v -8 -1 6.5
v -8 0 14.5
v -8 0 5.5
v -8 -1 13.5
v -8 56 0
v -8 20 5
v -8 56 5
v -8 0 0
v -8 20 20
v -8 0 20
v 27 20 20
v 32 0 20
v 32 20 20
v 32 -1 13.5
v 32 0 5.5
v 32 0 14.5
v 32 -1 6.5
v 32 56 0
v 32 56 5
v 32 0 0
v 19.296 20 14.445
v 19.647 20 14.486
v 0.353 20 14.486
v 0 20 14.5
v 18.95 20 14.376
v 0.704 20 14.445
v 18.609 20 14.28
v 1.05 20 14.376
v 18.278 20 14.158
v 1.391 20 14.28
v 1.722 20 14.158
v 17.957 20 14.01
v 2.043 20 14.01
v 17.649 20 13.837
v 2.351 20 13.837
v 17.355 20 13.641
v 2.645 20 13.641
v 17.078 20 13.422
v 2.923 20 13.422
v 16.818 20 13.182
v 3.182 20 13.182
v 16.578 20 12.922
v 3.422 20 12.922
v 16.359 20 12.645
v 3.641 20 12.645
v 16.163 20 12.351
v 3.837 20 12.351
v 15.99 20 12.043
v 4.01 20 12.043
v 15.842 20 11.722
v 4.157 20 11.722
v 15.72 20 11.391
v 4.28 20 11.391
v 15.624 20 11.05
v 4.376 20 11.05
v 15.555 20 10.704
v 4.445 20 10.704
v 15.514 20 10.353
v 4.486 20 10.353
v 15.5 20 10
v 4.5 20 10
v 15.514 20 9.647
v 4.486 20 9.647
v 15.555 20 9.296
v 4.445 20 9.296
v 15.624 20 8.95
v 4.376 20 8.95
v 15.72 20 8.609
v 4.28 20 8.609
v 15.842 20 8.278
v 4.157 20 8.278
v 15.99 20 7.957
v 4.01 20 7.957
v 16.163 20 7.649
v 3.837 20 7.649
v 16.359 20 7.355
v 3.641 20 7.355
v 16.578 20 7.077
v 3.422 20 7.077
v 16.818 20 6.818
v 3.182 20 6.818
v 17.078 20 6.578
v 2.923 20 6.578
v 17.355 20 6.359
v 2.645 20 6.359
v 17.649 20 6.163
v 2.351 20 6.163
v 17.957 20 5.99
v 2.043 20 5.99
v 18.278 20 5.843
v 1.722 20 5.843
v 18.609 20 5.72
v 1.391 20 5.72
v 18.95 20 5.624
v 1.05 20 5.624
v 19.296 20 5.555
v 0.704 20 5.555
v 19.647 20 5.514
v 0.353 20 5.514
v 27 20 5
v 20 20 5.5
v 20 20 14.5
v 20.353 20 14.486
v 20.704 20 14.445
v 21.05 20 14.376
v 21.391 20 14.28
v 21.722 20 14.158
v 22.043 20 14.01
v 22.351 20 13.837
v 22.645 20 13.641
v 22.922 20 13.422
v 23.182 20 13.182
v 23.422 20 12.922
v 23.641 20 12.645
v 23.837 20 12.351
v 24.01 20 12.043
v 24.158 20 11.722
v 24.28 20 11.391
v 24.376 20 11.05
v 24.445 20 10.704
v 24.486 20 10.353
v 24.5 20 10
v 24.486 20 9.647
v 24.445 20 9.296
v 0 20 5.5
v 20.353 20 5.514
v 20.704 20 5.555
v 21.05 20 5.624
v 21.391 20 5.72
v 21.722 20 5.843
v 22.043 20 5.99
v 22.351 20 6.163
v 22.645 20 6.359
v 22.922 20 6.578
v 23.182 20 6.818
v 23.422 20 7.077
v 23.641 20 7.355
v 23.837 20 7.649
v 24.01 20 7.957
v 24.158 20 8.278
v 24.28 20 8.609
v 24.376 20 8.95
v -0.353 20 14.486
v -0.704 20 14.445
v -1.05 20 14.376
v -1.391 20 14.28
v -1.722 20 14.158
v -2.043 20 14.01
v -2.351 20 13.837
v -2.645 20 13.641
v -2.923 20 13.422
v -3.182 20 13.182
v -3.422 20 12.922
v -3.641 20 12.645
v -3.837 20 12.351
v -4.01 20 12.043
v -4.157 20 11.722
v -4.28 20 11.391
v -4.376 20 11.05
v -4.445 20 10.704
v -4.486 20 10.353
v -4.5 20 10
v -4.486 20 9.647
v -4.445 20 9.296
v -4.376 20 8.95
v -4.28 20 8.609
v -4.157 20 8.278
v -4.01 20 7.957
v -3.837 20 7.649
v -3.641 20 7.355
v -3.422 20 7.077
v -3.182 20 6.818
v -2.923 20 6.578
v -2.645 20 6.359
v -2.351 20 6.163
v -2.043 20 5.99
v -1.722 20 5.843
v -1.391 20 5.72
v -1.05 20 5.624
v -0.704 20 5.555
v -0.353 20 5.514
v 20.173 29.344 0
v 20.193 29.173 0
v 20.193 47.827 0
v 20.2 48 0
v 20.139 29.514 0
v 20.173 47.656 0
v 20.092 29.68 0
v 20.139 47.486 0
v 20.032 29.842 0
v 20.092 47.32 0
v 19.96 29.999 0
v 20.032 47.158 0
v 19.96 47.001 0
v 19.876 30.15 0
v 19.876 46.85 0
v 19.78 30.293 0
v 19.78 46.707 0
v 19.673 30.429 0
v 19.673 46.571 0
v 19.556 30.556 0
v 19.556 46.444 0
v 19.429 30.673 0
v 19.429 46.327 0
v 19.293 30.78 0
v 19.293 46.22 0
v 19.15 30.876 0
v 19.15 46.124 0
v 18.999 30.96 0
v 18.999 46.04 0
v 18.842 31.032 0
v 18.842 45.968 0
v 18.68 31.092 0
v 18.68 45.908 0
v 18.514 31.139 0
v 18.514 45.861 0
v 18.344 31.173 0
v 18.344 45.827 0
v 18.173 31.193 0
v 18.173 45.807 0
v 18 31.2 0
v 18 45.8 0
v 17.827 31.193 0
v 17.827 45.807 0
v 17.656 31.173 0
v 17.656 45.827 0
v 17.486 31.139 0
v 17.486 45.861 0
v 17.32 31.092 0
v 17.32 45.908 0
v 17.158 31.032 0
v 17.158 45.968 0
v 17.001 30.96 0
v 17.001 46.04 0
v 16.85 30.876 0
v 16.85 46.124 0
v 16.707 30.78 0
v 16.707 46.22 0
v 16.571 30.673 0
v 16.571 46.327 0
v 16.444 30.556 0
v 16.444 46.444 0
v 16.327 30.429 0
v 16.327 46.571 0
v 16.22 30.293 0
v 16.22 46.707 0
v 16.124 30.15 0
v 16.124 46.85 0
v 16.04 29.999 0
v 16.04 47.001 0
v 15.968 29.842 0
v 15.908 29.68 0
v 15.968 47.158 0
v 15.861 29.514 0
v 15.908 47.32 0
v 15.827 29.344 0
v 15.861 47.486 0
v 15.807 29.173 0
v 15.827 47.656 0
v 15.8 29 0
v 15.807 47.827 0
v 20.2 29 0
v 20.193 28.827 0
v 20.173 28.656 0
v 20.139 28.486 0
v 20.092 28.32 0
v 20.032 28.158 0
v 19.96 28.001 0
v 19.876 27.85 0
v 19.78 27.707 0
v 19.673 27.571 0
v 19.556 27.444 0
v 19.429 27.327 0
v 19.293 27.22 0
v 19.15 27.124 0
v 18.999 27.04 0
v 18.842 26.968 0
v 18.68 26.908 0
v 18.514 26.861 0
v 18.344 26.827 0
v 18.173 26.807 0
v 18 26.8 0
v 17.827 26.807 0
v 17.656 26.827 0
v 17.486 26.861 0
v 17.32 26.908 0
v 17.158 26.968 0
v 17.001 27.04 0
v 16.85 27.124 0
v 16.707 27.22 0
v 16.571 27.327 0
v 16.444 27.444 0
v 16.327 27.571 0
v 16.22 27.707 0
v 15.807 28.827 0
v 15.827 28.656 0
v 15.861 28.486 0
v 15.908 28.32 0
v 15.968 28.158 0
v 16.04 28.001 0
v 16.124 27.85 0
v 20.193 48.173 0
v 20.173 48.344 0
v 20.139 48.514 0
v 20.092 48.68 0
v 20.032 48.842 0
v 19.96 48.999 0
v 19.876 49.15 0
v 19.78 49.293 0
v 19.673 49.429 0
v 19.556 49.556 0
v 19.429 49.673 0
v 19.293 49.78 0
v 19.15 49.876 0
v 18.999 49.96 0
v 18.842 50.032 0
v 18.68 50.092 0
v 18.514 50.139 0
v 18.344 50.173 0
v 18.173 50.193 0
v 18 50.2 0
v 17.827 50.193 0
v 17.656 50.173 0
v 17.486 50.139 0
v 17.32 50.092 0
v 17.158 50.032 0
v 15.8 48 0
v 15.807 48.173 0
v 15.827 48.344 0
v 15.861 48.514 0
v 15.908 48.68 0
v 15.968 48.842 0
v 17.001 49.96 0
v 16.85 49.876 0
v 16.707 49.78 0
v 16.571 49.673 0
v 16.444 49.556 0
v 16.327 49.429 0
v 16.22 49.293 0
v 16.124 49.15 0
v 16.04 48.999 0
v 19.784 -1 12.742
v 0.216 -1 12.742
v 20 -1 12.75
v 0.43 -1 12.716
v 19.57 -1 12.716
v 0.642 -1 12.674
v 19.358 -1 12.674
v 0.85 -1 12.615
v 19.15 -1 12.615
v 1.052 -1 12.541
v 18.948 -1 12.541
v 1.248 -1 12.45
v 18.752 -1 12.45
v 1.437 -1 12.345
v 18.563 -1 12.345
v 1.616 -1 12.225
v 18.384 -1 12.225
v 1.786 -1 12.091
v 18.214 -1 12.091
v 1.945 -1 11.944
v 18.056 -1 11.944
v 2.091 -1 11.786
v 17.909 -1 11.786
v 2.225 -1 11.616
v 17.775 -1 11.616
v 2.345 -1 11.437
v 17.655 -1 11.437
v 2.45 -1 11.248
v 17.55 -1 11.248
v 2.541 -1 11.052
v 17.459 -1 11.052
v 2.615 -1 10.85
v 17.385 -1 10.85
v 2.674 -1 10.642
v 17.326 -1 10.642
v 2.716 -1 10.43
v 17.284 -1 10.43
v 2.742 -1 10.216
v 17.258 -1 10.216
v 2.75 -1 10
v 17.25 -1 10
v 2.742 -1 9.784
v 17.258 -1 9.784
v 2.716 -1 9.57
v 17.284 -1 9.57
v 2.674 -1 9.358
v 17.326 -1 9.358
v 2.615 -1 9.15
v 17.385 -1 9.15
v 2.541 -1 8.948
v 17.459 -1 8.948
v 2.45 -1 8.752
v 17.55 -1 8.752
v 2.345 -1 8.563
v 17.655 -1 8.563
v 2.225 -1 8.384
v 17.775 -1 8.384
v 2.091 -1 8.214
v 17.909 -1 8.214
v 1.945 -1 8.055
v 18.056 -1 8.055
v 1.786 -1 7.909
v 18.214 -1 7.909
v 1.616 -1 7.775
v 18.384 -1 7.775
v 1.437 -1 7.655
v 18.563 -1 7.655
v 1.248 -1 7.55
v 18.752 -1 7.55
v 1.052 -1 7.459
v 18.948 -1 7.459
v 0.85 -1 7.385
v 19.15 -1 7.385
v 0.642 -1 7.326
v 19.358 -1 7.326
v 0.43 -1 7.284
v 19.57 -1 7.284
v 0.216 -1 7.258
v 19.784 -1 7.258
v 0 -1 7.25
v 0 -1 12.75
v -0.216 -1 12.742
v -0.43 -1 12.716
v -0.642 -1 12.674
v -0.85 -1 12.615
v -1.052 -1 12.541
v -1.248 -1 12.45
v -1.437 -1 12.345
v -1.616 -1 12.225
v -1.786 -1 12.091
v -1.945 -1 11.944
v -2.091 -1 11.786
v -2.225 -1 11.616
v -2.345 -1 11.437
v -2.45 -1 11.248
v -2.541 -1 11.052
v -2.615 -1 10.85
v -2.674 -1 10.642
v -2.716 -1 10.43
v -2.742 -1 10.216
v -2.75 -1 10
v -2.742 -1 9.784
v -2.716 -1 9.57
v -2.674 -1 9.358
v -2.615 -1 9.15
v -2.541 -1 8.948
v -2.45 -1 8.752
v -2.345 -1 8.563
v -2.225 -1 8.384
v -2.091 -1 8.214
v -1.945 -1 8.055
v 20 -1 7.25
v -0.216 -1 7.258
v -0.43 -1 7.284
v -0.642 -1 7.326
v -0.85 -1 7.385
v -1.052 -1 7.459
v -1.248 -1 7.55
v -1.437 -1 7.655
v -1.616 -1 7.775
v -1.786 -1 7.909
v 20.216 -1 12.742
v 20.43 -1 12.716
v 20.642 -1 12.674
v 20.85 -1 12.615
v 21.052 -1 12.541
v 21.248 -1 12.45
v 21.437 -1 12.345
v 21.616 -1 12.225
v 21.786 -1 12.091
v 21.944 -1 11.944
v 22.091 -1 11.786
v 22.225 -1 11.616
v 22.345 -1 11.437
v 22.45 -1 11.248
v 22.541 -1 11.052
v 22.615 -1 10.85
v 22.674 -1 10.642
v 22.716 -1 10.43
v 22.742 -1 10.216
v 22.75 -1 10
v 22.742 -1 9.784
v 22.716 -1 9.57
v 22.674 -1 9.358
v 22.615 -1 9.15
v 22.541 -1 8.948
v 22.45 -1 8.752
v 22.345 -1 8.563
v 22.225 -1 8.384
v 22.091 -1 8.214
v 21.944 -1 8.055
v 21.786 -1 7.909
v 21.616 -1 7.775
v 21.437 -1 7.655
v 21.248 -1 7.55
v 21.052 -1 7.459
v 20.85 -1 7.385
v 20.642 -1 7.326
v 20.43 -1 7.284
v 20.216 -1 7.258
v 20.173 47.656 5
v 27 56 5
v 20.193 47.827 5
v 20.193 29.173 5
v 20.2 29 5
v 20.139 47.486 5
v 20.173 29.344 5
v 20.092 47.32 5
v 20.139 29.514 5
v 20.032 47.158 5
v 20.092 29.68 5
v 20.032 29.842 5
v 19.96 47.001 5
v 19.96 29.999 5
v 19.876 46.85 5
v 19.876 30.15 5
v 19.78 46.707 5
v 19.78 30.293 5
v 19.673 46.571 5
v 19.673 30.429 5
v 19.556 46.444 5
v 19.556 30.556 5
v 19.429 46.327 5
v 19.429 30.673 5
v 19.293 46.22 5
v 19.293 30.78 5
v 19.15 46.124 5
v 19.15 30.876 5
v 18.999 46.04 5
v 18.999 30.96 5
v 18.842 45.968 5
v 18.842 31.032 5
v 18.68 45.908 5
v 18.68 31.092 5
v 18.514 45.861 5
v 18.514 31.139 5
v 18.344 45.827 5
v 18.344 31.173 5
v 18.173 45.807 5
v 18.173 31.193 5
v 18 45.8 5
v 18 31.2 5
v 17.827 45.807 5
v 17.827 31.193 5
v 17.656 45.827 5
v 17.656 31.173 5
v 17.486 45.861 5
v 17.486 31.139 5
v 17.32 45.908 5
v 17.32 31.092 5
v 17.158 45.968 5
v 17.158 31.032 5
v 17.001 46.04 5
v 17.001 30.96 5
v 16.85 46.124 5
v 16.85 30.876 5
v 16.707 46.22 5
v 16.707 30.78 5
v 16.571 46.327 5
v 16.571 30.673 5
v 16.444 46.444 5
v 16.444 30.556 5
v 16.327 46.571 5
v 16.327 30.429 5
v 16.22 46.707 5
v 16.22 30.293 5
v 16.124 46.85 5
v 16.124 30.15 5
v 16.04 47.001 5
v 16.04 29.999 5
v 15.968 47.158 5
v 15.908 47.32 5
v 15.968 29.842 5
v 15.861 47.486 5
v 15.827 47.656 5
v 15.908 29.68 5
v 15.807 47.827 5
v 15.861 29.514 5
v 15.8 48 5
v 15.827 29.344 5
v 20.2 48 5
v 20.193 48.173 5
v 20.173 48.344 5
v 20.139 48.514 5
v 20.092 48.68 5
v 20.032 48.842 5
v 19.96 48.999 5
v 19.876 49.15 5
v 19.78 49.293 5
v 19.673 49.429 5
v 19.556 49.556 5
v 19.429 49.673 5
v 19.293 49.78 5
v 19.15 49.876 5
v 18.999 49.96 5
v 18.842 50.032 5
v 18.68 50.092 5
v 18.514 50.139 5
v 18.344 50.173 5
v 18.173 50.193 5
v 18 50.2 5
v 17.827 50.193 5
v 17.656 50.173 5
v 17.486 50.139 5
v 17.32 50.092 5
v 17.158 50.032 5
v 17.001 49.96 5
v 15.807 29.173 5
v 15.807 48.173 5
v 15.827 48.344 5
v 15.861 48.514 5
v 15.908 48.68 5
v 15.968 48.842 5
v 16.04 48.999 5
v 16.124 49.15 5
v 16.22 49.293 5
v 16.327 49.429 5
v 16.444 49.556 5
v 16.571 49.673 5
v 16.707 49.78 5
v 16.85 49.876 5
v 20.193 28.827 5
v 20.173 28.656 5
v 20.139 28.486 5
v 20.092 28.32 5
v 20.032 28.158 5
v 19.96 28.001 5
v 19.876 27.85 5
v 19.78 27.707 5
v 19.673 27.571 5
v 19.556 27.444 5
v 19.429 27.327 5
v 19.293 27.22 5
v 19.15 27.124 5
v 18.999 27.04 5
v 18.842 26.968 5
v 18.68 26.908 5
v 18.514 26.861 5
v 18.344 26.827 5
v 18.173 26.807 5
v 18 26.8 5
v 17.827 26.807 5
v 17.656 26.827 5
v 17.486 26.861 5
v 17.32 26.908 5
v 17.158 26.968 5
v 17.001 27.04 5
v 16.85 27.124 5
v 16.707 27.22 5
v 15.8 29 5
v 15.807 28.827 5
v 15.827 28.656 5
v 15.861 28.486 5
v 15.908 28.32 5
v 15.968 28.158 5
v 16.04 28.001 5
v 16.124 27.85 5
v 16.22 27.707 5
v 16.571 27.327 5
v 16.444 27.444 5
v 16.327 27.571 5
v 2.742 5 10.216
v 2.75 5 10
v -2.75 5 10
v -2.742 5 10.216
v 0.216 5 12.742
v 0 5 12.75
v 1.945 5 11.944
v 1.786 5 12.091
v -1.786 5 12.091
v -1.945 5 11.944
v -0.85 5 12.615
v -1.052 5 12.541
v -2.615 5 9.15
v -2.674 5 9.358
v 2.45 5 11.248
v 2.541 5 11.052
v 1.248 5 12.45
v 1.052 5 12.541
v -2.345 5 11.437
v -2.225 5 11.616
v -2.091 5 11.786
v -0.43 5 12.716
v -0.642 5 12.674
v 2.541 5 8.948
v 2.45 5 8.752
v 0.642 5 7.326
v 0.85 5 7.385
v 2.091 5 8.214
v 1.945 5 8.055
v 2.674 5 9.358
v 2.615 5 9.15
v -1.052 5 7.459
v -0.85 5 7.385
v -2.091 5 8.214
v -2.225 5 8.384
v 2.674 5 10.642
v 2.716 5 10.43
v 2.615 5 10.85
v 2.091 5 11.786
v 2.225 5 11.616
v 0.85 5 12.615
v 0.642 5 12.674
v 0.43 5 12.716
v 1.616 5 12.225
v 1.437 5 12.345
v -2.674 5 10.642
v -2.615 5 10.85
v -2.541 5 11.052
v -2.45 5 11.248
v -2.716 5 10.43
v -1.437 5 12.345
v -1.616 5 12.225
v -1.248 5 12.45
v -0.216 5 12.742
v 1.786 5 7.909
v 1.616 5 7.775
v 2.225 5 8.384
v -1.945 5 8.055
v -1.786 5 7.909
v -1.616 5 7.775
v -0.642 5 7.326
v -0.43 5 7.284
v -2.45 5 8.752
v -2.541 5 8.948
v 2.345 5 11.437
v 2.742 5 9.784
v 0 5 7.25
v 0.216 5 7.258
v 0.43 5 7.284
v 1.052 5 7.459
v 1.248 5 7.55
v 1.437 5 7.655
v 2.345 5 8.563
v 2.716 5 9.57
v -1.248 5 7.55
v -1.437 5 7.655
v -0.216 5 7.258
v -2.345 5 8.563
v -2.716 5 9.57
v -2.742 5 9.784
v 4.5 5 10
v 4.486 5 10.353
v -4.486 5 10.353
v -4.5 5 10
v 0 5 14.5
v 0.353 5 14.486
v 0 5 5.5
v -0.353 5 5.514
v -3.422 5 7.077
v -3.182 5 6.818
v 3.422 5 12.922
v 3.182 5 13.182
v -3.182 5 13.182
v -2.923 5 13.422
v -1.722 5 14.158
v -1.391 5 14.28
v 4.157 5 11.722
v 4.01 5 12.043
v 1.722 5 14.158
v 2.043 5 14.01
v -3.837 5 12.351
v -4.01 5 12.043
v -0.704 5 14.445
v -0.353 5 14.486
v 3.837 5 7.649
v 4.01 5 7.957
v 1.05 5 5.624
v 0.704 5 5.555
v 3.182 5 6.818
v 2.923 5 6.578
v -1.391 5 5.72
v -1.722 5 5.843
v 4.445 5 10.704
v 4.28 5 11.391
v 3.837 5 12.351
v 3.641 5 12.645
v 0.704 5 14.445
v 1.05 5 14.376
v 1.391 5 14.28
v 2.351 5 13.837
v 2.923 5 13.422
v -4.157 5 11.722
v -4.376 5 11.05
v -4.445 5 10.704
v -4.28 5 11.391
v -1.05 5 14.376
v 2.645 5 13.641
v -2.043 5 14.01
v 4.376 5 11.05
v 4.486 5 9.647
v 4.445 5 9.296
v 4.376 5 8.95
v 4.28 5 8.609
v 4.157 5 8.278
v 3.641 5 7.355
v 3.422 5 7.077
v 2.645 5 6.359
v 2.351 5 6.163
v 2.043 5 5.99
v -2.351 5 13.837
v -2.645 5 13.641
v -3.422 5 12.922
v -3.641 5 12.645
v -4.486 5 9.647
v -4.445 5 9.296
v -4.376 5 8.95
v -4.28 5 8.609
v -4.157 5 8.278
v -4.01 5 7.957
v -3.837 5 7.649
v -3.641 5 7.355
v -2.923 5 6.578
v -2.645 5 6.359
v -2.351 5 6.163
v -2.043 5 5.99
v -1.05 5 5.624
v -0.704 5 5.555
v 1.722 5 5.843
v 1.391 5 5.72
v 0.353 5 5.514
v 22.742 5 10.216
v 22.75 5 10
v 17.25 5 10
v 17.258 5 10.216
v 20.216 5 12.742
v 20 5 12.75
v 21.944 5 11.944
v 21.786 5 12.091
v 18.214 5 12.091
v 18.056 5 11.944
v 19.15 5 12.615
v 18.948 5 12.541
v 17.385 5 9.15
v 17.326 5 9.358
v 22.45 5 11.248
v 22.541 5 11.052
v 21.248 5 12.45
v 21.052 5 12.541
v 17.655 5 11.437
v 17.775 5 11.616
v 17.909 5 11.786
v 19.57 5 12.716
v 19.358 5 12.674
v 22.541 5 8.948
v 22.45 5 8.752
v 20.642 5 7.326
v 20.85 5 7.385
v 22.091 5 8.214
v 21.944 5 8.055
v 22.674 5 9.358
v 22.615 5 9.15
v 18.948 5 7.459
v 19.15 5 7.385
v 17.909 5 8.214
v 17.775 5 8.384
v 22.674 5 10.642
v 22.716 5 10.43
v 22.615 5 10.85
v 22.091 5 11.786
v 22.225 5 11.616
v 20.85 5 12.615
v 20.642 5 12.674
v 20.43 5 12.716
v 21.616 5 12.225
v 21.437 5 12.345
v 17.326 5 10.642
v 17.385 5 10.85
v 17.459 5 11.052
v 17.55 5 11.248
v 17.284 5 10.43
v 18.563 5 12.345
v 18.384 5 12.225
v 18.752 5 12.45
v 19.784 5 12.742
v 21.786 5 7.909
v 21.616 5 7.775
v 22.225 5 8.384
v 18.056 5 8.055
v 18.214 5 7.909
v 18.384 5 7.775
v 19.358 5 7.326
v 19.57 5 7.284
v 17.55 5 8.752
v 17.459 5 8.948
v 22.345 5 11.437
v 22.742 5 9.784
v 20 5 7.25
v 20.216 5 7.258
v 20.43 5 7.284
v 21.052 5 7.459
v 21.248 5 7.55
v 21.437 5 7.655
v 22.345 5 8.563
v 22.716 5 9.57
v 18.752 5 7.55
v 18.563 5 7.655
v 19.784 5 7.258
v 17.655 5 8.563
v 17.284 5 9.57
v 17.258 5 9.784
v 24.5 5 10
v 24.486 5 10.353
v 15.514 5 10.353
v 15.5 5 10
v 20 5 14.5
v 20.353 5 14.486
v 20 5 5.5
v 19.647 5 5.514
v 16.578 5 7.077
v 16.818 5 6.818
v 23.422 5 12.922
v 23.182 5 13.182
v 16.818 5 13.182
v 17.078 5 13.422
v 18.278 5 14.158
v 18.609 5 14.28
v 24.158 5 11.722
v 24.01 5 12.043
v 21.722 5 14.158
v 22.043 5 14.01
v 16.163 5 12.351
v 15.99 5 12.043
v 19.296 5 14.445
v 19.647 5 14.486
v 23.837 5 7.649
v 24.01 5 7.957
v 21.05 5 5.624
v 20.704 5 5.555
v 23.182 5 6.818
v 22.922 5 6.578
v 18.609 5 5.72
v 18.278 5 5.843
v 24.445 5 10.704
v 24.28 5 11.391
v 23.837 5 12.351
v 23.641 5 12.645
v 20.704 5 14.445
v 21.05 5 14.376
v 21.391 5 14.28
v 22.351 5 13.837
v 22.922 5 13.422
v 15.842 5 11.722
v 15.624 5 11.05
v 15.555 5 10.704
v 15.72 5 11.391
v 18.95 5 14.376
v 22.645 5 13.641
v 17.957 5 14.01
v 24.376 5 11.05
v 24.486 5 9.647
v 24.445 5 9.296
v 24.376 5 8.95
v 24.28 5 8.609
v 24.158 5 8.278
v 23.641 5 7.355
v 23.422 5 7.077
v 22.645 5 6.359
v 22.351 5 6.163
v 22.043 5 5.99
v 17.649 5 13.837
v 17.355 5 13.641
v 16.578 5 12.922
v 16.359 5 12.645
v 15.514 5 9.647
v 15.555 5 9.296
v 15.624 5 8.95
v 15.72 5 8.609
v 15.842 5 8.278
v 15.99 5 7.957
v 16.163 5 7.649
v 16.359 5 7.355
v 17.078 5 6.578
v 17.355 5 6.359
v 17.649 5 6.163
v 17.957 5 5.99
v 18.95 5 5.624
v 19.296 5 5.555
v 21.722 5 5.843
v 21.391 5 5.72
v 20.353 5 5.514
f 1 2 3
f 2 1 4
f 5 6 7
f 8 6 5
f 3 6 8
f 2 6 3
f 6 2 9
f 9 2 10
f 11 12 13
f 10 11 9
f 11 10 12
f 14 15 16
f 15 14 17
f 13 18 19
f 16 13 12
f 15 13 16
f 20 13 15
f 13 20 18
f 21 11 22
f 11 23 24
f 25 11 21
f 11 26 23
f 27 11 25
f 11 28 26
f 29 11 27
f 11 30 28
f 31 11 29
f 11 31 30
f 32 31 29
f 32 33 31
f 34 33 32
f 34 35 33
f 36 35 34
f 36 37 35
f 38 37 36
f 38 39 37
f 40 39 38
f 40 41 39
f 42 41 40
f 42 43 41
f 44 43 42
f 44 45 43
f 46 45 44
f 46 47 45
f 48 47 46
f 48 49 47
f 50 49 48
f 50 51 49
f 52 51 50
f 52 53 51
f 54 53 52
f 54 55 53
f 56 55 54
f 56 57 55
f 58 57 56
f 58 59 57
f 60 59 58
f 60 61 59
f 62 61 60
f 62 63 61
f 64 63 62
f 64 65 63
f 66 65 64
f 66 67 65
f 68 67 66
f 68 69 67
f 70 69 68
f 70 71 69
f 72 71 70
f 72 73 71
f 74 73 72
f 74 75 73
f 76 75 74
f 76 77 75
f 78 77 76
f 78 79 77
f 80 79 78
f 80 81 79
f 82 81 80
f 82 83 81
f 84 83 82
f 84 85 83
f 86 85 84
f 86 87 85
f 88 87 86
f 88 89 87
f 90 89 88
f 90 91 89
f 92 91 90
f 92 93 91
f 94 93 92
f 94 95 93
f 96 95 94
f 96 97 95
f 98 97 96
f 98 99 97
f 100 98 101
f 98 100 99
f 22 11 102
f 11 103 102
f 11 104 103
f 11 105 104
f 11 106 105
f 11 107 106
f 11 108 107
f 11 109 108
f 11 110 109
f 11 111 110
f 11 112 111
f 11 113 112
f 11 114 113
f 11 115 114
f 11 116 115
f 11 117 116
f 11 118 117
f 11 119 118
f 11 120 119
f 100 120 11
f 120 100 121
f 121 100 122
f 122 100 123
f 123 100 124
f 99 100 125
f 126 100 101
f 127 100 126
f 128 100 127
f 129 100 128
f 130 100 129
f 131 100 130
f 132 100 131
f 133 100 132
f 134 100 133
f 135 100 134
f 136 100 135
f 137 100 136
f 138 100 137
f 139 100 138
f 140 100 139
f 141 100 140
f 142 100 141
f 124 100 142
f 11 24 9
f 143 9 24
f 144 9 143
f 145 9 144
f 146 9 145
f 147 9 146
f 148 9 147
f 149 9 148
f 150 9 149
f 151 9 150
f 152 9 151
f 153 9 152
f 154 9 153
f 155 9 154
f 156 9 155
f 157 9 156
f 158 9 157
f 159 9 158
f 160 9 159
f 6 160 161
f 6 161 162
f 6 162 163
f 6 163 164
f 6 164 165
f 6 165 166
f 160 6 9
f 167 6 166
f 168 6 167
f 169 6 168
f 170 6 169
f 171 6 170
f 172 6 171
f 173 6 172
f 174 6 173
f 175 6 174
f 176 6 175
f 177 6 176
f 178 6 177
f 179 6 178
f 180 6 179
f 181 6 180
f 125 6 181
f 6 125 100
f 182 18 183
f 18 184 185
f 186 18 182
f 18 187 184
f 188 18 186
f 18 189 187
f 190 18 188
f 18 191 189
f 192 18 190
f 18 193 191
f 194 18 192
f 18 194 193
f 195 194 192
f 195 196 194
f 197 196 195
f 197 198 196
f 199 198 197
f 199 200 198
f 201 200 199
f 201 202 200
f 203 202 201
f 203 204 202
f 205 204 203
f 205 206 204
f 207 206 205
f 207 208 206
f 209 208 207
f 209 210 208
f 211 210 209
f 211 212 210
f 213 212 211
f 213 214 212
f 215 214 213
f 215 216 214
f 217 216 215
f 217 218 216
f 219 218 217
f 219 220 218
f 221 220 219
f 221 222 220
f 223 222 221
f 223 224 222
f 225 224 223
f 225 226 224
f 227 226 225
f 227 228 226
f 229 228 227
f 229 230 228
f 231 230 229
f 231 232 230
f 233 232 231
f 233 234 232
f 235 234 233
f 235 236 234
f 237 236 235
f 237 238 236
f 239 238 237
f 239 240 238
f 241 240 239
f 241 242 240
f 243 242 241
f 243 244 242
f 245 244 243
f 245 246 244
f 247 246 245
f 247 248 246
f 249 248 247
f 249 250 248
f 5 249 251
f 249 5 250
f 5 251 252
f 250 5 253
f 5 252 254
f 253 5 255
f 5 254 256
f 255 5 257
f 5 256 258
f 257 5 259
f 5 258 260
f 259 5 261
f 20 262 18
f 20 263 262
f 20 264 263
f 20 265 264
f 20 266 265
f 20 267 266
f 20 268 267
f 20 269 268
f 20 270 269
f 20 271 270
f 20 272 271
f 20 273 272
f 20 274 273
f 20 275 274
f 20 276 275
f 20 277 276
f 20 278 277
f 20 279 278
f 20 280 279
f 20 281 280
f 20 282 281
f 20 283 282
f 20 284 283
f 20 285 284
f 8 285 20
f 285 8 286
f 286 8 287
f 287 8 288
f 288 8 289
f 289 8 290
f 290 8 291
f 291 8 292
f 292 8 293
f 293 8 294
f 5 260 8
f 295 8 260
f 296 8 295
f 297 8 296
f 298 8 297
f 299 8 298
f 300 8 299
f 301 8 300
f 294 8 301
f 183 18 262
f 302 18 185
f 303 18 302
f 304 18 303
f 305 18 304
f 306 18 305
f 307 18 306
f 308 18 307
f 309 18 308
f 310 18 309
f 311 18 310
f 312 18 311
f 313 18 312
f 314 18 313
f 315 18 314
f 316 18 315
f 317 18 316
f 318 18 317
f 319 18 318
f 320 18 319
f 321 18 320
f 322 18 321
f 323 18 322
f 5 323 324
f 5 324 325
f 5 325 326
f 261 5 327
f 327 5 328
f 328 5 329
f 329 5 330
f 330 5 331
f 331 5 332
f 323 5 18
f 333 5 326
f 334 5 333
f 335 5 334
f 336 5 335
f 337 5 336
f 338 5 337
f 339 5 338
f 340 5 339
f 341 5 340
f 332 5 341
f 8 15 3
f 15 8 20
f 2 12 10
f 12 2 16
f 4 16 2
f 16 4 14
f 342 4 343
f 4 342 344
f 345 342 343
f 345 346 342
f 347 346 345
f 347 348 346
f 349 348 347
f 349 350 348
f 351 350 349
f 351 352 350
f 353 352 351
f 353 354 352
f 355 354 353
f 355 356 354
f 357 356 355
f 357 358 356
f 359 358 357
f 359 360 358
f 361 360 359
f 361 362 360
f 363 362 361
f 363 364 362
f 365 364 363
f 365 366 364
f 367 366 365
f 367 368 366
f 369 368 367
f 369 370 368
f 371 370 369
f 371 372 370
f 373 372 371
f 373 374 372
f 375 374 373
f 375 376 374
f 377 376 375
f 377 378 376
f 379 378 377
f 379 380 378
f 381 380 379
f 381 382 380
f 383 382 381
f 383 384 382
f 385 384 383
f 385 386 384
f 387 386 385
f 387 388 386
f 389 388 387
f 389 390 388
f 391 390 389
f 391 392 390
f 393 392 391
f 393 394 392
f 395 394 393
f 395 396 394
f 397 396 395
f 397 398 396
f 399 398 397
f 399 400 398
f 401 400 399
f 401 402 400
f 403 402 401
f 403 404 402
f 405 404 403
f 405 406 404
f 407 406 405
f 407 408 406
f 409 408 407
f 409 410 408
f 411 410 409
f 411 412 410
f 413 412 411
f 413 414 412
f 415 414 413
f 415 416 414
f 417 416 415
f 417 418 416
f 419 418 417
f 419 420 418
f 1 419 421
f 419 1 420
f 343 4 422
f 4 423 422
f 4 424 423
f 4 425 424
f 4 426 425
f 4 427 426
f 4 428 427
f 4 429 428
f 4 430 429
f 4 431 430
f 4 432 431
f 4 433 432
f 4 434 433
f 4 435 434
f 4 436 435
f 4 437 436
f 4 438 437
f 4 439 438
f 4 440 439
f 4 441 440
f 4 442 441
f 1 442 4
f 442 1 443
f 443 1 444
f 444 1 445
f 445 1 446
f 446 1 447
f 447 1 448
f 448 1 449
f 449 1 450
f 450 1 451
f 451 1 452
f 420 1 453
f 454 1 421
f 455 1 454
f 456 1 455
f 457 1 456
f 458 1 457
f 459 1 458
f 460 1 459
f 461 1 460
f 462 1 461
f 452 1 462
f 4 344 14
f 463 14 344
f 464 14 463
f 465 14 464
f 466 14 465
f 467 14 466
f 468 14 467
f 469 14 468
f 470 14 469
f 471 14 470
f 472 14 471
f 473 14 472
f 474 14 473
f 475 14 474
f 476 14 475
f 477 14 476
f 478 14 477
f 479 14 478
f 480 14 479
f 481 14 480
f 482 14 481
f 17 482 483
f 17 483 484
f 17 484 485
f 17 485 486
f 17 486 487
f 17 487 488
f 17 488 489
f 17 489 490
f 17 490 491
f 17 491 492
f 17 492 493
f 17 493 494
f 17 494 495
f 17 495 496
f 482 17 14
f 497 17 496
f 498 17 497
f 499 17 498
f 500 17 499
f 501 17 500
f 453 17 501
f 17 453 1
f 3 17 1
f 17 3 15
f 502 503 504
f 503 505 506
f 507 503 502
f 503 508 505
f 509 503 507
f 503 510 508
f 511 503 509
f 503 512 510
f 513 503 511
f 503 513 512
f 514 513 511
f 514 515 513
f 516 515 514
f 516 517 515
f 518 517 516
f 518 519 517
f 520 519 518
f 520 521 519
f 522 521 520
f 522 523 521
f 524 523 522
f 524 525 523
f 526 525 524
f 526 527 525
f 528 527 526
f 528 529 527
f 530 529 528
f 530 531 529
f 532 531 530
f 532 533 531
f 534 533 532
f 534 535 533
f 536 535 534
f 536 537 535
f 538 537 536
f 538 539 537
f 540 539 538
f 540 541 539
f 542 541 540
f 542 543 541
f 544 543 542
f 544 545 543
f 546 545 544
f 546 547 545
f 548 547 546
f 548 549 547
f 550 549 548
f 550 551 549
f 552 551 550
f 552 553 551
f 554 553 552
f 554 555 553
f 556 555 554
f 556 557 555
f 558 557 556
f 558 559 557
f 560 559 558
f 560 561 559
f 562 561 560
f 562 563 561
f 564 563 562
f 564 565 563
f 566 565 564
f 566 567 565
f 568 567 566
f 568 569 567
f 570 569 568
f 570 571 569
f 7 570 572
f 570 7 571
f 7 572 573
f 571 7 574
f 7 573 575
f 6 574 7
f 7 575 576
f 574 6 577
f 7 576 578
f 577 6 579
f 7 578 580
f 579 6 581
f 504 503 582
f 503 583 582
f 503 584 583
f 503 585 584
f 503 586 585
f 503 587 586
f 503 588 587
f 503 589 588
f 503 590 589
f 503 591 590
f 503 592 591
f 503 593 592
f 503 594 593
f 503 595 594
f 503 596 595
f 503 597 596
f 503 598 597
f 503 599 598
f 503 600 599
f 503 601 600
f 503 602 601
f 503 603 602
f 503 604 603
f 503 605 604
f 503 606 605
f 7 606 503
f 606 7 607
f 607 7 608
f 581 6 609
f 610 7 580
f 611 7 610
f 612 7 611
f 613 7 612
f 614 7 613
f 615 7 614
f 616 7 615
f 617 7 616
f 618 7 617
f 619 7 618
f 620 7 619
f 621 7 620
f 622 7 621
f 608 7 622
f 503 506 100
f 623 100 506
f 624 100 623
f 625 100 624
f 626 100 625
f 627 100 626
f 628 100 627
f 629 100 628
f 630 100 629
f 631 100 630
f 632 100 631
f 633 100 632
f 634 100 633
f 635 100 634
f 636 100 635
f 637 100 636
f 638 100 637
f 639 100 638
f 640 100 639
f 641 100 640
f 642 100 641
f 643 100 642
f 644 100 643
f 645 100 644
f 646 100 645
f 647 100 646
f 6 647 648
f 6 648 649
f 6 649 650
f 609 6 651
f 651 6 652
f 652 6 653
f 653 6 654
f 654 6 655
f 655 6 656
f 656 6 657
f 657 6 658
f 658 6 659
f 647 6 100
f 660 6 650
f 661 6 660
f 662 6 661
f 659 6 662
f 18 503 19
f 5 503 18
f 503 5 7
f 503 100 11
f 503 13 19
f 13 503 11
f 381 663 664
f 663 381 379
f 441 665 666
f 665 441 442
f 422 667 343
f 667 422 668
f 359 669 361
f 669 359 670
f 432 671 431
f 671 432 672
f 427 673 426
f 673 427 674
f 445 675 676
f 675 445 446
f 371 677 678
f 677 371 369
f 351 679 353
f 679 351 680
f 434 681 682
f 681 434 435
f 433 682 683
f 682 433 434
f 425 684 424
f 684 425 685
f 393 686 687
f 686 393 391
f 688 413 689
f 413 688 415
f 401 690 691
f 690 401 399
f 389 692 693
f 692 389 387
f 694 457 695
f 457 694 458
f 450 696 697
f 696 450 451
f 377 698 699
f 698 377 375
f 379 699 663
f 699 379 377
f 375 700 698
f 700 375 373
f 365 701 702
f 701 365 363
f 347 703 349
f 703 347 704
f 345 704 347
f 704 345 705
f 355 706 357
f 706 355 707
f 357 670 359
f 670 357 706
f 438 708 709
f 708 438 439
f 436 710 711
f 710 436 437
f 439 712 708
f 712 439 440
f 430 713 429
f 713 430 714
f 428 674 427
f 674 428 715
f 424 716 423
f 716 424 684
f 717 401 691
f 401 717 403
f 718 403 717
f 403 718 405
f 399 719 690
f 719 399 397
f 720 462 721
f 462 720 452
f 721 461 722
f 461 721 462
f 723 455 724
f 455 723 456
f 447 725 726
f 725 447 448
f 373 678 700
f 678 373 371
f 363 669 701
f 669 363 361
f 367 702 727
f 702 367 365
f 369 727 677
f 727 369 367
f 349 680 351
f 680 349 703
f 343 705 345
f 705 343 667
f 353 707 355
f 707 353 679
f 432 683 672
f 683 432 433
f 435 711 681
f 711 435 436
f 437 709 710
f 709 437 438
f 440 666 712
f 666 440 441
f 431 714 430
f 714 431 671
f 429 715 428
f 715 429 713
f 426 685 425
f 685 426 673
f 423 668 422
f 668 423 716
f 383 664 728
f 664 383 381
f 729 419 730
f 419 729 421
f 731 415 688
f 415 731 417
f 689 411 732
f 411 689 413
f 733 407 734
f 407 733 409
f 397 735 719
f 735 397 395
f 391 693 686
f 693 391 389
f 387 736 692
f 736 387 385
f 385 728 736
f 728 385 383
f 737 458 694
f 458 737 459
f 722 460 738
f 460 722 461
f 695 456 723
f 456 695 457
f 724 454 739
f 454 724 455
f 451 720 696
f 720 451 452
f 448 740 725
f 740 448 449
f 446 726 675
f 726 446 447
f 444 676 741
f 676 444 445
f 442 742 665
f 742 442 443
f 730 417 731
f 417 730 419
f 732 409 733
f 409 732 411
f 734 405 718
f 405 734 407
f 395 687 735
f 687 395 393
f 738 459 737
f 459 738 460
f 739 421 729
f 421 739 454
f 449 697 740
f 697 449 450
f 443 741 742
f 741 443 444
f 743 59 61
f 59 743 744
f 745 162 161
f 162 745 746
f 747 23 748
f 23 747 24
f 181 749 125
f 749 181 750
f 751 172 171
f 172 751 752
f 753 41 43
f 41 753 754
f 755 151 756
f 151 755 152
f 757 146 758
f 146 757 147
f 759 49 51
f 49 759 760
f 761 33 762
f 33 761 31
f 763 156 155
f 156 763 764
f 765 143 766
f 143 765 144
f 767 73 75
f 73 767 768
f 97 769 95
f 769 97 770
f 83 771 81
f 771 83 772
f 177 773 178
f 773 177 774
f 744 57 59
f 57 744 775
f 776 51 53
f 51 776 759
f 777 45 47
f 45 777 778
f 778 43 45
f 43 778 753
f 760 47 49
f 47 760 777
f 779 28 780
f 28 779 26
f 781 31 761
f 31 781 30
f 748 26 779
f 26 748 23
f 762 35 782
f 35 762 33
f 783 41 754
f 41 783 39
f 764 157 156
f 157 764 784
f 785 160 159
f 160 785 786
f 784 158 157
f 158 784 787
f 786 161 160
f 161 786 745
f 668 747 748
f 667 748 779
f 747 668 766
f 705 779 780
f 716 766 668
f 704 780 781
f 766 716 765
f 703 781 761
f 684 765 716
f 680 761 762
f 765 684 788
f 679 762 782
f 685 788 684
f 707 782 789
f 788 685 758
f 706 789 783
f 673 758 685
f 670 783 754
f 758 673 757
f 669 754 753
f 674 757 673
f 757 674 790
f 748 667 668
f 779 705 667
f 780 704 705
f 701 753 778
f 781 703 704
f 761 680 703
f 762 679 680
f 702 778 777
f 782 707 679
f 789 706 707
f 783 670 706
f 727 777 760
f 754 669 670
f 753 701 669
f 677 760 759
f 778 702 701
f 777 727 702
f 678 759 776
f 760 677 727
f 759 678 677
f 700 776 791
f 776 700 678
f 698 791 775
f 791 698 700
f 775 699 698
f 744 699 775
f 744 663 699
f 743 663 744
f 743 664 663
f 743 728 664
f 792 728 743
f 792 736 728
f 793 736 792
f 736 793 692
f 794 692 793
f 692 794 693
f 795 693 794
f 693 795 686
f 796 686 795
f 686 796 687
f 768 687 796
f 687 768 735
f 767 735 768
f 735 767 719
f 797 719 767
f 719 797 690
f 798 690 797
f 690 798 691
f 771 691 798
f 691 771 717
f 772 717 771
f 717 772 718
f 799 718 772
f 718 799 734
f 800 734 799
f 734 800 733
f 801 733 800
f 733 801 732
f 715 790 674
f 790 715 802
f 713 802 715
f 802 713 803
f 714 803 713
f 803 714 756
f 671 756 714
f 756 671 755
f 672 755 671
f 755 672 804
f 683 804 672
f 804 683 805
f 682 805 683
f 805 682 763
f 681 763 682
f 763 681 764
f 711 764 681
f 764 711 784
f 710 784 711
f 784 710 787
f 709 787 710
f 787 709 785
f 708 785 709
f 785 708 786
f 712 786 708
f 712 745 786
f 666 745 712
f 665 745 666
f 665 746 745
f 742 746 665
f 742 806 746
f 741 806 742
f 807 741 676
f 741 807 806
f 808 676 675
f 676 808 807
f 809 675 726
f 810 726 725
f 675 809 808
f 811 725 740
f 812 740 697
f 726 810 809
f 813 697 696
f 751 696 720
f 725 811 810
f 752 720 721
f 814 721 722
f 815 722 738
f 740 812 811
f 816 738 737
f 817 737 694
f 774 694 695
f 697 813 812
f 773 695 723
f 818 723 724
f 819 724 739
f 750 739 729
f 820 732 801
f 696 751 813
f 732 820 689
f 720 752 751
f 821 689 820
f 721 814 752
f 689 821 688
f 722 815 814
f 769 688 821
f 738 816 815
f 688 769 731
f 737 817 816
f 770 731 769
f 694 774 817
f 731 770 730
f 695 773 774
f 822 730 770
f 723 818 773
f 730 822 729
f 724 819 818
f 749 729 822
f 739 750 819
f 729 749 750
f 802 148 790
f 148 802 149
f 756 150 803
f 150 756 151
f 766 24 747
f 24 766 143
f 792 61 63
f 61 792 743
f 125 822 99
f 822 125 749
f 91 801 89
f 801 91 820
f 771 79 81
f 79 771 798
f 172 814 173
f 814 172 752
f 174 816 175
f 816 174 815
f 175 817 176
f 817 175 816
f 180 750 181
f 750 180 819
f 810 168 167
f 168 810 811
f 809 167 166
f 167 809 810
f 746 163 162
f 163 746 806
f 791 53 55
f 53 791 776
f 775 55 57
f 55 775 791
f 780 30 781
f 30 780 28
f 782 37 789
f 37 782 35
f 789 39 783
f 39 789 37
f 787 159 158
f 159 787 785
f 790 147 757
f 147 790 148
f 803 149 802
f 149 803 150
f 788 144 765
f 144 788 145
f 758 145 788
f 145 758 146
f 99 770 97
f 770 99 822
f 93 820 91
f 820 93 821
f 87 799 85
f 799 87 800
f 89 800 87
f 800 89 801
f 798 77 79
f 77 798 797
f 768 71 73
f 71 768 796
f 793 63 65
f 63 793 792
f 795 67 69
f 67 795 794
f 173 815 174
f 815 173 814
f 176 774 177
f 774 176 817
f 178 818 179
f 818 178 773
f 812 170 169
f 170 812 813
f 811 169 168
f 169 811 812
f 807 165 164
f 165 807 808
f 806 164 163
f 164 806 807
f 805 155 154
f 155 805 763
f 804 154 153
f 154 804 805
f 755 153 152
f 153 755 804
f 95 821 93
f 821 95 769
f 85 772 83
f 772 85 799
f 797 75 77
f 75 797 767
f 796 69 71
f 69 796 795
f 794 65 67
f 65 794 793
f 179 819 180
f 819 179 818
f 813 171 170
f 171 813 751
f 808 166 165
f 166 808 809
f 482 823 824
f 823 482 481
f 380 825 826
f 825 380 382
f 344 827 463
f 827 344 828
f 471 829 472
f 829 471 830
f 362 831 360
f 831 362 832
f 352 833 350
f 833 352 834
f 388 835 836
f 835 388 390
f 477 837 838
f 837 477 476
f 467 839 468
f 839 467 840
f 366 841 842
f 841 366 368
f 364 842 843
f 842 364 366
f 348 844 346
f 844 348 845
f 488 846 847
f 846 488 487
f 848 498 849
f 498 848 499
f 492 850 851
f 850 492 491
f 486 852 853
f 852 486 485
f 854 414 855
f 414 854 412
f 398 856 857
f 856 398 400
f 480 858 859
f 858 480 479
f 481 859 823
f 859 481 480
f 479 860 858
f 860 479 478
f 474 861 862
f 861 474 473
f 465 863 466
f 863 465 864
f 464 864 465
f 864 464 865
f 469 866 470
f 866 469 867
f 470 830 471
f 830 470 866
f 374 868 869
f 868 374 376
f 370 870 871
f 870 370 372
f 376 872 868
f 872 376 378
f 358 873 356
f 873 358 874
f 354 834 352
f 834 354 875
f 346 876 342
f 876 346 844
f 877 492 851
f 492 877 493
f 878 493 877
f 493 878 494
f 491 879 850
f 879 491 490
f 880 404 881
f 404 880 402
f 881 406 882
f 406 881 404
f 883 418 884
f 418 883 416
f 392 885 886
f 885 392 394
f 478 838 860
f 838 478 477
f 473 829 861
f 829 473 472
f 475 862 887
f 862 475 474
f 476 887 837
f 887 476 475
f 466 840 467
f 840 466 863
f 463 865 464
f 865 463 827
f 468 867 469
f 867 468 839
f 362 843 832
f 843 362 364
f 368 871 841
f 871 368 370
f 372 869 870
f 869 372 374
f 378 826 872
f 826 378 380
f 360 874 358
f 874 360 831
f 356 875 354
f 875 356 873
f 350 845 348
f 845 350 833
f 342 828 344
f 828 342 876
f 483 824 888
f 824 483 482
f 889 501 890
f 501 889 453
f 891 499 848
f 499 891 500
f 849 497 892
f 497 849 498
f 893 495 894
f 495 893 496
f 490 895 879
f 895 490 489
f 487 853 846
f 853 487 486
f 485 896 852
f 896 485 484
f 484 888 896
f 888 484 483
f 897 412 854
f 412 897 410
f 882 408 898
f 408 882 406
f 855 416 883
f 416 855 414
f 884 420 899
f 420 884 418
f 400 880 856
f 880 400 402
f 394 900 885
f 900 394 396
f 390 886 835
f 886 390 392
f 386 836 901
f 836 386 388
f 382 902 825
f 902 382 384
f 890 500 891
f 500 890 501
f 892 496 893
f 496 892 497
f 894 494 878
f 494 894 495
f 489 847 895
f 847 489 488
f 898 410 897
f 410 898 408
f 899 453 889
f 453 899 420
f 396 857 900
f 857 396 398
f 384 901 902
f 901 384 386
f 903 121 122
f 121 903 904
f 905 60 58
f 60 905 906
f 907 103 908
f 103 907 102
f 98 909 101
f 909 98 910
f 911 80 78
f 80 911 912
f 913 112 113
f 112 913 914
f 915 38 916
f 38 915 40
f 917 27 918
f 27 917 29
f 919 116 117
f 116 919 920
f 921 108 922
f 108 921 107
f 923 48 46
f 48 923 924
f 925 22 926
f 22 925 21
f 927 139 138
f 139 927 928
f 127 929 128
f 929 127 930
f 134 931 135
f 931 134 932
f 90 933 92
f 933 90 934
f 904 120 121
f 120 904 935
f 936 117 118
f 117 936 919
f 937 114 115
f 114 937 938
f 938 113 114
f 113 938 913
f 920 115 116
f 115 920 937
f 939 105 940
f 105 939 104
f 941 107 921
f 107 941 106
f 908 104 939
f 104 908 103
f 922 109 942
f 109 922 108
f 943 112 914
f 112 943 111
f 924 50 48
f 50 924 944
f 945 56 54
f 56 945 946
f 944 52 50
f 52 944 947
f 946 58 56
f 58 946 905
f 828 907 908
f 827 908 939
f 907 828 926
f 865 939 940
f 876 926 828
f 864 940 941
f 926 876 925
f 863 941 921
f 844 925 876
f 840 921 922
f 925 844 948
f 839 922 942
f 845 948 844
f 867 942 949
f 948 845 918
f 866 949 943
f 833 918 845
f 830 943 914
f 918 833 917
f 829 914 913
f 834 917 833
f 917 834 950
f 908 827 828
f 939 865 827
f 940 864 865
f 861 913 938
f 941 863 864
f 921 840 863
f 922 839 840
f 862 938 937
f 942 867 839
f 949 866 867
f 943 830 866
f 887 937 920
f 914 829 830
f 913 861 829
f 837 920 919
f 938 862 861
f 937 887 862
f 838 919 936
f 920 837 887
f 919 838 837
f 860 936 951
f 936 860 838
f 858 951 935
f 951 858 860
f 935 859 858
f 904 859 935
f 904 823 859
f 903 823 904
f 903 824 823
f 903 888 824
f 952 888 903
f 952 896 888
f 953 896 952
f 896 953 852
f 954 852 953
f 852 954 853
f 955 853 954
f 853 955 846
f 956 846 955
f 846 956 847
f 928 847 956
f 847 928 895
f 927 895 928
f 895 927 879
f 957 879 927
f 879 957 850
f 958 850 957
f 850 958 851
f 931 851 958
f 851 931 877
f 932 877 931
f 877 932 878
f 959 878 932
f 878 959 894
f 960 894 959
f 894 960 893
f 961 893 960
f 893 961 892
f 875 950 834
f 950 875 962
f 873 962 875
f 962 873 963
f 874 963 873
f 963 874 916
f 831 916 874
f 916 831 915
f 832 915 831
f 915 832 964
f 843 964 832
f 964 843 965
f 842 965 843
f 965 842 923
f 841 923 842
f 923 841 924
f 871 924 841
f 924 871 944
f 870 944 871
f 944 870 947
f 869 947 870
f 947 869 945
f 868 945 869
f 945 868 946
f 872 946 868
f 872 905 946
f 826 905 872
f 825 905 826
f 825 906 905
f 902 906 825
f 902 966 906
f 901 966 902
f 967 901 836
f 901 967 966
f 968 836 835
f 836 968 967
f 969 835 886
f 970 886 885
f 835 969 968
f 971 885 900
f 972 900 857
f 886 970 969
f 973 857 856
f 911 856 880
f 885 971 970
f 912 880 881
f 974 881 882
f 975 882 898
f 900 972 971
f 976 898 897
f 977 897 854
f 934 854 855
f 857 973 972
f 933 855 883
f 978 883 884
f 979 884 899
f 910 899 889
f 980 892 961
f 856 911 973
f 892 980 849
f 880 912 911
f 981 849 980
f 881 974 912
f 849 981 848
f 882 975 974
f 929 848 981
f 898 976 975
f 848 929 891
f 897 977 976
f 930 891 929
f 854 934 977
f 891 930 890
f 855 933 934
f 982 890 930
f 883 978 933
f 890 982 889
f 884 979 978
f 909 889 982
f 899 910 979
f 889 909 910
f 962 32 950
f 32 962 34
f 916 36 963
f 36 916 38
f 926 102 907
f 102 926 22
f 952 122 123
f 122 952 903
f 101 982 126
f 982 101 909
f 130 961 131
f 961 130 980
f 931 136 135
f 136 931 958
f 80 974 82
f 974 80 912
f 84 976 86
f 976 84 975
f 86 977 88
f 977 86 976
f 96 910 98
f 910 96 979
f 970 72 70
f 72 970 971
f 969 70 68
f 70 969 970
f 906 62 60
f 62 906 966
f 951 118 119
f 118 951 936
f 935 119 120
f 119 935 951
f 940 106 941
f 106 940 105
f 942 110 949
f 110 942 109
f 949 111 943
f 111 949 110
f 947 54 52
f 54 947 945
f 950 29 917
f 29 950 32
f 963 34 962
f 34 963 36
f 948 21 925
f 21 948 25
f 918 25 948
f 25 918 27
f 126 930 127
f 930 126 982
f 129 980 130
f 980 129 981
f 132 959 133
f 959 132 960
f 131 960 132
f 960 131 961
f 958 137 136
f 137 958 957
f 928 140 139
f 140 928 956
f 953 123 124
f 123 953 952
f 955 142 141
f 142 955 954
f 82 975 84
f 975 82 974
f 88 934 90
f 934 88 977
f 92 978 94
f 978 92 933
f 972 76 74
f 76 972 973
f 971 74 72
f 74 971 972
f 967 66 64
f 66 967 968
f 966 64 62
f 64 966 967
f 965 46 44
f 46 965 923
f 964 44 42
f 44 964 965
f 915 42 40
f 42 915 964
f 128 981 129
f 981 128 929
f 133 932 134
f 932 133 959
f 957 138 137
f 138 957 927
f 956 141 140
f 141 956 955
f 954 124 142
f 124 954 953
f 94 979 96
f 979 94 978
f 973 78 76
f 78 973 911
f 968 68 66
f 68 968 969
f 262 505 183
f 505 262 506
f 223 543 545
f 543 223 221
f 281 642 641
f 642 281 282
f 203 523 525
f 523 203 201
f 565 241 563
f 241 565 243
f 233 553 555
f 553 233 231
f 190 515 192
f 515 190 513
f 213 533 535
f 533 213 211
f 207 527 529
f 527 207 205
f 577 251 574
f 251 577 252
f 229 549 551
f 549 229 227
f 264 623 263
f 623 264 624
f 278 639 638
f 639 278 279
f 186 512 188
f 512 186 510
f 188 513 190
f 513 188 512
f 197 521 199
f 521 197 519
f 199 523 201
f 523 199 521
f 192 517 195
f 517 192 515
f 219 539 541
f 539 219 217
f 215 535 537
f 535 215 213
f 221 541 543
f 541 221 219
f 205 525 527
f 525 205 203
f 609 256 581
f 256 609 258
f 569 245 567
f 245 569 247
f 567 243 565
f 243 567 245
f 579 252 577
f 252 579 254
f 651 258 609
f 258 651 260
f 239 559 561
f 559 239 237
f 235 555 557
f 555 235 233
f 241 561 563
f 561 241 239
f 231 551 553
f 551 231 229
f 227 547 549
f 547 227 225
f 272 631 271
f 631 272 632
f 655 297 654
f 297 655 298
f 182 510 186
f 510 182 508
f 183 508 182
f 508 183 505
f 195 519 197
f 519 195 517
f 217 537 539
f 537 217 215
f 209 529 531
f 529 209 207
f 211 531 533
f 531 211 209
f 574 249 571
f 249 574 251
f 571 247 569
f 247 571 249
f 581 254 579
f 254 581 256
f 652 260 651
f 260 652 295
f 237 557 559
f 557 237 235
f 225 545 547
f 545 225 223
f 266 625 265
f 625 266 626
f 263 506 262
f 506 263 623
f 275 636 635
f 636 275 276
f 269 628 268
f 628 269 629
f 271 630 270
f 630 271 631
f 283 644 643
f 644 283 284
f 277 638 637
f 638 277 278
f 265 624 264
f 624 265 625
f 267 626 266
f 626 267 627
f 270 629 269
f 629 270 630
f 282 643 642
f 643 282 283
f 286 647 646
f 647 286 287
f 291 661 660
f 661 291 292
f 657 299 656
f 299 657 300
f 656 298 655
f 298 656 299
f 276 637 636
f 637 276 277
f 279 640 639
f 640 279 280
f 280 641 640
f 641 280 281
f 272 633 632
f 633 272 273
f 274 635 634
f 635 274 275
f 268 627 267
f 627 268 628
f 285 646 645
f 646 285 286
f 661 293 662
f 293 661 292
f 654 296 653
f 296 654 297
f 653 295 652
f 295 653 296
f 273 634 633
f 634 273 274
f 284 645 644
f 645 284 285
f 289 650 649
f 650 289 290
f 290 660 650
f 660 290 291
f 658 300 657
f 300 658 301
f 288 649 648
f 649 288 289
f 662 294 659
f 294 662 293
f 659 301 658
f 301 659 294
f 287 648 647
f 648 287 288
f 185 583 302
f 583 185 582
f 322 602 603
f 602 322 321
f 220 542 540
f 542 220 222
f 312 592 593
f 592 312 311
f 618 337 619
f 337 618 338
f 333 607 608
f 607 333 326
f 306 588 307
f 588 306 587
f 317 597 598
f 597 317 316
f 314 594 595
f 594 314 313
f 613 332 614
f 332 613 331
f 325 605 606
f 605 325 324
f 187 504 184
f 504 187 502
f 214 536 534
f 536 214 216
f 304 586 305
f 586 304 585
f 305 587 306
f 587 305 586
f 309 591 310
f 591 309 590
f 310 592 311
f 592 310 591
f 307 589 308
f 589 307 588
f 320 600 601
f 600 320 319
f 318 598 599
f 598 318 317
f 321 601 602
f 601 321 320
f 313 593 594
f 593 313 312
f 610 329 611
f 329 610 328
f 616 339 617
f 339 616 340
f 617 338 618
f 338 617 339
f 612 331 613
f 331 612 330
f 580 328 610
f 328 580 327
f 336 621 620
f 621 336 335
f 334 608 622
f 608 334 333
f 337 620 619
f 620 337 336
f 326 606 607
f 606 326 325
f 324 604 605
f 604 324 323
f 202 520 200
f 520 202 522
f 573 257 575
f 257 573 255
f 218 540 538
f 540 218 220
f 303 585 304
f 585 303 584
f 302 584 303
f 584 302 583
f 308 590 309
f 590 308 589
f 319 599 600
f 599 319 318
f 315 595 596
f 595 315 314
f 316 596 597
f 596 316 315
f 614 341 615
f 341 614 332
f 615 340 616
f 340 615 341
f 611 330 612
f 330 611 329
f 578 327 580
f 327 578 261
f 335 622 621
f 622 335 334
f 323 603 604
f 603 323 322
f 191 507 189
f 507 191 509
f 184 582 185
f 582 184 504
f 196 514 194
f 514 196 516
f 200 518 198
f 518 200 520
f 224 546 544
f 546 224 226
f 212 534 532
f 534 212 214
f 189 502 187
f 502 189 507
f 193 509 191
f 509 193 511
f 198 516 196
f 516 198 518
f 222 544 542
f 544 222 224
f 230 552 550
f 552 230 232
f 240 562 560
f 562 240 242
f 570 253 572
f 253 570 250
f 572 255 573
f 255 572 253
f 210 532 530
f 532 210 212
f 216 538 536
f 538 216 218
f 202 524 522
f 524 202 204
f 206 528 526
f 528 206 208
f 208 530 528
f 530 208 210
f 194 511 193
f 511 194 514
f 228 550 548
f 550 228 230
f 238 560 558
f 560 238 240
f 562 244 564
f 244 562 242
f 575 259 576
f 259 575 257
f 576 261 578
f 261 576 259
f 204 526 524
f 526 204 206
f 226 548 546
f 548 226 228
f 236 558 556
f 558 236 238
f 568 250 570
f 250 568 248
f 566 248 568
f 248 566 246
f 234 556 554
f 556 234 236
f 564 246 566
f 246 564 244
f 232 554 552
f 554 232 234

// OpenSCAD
$fn=80;


difference() {
   union() {
      translate([-8,0,0]) cube([40,20,20]);
         /* angled bit to fit in v-slot */
      translate([-8,0,5.5]) rotate([0,-90,180])
         linear_extrude(height=40)
         polygon(points=[[-0.1,0],[0,0],[1,1],[8,1],[9,0],[9,-0.1]]);
      translate([-8,0,0]) cube([40, 56,5]);

      translate([27,0,0]) rotate([90,0,90]) linear_extrude(height=5) polygon(points=[[20,0], [20,20],[56,5], [56,0]]);
   }

   // translate([18,28,-0.5]) cylinder(d=4.4,h=10);
   translate([18,29,-0.5]) cylinder(d=4.4,h=10);
   translate([18,48,-0.5]) cylinder(d=4.4,h=10);

   /* TODO: MAKE SURE HOLES ARE CORRECT DEPTH. */
   translate([20,15,10]) rotate([90,0,0]) {
      /* bolt holes */
      translate([0,0,14-4.8]) cylinder(h=15,d=5.5);

      /* cap holes (with a little gap to allow bridging */
      translate([0,0,-20]) cylinder(h=30,d=9);
   }
   translate([0,15,10]) rotate([90,0,0]) {
      /* bolt holes */
      translate([0,0,14-4.8]) cylinder(h=15,d=5.5);

      /* cap holes (with a little gap to allow bridging */
      translate([0,0,-20]) cylinder(h=30,d=9);
   }
}
